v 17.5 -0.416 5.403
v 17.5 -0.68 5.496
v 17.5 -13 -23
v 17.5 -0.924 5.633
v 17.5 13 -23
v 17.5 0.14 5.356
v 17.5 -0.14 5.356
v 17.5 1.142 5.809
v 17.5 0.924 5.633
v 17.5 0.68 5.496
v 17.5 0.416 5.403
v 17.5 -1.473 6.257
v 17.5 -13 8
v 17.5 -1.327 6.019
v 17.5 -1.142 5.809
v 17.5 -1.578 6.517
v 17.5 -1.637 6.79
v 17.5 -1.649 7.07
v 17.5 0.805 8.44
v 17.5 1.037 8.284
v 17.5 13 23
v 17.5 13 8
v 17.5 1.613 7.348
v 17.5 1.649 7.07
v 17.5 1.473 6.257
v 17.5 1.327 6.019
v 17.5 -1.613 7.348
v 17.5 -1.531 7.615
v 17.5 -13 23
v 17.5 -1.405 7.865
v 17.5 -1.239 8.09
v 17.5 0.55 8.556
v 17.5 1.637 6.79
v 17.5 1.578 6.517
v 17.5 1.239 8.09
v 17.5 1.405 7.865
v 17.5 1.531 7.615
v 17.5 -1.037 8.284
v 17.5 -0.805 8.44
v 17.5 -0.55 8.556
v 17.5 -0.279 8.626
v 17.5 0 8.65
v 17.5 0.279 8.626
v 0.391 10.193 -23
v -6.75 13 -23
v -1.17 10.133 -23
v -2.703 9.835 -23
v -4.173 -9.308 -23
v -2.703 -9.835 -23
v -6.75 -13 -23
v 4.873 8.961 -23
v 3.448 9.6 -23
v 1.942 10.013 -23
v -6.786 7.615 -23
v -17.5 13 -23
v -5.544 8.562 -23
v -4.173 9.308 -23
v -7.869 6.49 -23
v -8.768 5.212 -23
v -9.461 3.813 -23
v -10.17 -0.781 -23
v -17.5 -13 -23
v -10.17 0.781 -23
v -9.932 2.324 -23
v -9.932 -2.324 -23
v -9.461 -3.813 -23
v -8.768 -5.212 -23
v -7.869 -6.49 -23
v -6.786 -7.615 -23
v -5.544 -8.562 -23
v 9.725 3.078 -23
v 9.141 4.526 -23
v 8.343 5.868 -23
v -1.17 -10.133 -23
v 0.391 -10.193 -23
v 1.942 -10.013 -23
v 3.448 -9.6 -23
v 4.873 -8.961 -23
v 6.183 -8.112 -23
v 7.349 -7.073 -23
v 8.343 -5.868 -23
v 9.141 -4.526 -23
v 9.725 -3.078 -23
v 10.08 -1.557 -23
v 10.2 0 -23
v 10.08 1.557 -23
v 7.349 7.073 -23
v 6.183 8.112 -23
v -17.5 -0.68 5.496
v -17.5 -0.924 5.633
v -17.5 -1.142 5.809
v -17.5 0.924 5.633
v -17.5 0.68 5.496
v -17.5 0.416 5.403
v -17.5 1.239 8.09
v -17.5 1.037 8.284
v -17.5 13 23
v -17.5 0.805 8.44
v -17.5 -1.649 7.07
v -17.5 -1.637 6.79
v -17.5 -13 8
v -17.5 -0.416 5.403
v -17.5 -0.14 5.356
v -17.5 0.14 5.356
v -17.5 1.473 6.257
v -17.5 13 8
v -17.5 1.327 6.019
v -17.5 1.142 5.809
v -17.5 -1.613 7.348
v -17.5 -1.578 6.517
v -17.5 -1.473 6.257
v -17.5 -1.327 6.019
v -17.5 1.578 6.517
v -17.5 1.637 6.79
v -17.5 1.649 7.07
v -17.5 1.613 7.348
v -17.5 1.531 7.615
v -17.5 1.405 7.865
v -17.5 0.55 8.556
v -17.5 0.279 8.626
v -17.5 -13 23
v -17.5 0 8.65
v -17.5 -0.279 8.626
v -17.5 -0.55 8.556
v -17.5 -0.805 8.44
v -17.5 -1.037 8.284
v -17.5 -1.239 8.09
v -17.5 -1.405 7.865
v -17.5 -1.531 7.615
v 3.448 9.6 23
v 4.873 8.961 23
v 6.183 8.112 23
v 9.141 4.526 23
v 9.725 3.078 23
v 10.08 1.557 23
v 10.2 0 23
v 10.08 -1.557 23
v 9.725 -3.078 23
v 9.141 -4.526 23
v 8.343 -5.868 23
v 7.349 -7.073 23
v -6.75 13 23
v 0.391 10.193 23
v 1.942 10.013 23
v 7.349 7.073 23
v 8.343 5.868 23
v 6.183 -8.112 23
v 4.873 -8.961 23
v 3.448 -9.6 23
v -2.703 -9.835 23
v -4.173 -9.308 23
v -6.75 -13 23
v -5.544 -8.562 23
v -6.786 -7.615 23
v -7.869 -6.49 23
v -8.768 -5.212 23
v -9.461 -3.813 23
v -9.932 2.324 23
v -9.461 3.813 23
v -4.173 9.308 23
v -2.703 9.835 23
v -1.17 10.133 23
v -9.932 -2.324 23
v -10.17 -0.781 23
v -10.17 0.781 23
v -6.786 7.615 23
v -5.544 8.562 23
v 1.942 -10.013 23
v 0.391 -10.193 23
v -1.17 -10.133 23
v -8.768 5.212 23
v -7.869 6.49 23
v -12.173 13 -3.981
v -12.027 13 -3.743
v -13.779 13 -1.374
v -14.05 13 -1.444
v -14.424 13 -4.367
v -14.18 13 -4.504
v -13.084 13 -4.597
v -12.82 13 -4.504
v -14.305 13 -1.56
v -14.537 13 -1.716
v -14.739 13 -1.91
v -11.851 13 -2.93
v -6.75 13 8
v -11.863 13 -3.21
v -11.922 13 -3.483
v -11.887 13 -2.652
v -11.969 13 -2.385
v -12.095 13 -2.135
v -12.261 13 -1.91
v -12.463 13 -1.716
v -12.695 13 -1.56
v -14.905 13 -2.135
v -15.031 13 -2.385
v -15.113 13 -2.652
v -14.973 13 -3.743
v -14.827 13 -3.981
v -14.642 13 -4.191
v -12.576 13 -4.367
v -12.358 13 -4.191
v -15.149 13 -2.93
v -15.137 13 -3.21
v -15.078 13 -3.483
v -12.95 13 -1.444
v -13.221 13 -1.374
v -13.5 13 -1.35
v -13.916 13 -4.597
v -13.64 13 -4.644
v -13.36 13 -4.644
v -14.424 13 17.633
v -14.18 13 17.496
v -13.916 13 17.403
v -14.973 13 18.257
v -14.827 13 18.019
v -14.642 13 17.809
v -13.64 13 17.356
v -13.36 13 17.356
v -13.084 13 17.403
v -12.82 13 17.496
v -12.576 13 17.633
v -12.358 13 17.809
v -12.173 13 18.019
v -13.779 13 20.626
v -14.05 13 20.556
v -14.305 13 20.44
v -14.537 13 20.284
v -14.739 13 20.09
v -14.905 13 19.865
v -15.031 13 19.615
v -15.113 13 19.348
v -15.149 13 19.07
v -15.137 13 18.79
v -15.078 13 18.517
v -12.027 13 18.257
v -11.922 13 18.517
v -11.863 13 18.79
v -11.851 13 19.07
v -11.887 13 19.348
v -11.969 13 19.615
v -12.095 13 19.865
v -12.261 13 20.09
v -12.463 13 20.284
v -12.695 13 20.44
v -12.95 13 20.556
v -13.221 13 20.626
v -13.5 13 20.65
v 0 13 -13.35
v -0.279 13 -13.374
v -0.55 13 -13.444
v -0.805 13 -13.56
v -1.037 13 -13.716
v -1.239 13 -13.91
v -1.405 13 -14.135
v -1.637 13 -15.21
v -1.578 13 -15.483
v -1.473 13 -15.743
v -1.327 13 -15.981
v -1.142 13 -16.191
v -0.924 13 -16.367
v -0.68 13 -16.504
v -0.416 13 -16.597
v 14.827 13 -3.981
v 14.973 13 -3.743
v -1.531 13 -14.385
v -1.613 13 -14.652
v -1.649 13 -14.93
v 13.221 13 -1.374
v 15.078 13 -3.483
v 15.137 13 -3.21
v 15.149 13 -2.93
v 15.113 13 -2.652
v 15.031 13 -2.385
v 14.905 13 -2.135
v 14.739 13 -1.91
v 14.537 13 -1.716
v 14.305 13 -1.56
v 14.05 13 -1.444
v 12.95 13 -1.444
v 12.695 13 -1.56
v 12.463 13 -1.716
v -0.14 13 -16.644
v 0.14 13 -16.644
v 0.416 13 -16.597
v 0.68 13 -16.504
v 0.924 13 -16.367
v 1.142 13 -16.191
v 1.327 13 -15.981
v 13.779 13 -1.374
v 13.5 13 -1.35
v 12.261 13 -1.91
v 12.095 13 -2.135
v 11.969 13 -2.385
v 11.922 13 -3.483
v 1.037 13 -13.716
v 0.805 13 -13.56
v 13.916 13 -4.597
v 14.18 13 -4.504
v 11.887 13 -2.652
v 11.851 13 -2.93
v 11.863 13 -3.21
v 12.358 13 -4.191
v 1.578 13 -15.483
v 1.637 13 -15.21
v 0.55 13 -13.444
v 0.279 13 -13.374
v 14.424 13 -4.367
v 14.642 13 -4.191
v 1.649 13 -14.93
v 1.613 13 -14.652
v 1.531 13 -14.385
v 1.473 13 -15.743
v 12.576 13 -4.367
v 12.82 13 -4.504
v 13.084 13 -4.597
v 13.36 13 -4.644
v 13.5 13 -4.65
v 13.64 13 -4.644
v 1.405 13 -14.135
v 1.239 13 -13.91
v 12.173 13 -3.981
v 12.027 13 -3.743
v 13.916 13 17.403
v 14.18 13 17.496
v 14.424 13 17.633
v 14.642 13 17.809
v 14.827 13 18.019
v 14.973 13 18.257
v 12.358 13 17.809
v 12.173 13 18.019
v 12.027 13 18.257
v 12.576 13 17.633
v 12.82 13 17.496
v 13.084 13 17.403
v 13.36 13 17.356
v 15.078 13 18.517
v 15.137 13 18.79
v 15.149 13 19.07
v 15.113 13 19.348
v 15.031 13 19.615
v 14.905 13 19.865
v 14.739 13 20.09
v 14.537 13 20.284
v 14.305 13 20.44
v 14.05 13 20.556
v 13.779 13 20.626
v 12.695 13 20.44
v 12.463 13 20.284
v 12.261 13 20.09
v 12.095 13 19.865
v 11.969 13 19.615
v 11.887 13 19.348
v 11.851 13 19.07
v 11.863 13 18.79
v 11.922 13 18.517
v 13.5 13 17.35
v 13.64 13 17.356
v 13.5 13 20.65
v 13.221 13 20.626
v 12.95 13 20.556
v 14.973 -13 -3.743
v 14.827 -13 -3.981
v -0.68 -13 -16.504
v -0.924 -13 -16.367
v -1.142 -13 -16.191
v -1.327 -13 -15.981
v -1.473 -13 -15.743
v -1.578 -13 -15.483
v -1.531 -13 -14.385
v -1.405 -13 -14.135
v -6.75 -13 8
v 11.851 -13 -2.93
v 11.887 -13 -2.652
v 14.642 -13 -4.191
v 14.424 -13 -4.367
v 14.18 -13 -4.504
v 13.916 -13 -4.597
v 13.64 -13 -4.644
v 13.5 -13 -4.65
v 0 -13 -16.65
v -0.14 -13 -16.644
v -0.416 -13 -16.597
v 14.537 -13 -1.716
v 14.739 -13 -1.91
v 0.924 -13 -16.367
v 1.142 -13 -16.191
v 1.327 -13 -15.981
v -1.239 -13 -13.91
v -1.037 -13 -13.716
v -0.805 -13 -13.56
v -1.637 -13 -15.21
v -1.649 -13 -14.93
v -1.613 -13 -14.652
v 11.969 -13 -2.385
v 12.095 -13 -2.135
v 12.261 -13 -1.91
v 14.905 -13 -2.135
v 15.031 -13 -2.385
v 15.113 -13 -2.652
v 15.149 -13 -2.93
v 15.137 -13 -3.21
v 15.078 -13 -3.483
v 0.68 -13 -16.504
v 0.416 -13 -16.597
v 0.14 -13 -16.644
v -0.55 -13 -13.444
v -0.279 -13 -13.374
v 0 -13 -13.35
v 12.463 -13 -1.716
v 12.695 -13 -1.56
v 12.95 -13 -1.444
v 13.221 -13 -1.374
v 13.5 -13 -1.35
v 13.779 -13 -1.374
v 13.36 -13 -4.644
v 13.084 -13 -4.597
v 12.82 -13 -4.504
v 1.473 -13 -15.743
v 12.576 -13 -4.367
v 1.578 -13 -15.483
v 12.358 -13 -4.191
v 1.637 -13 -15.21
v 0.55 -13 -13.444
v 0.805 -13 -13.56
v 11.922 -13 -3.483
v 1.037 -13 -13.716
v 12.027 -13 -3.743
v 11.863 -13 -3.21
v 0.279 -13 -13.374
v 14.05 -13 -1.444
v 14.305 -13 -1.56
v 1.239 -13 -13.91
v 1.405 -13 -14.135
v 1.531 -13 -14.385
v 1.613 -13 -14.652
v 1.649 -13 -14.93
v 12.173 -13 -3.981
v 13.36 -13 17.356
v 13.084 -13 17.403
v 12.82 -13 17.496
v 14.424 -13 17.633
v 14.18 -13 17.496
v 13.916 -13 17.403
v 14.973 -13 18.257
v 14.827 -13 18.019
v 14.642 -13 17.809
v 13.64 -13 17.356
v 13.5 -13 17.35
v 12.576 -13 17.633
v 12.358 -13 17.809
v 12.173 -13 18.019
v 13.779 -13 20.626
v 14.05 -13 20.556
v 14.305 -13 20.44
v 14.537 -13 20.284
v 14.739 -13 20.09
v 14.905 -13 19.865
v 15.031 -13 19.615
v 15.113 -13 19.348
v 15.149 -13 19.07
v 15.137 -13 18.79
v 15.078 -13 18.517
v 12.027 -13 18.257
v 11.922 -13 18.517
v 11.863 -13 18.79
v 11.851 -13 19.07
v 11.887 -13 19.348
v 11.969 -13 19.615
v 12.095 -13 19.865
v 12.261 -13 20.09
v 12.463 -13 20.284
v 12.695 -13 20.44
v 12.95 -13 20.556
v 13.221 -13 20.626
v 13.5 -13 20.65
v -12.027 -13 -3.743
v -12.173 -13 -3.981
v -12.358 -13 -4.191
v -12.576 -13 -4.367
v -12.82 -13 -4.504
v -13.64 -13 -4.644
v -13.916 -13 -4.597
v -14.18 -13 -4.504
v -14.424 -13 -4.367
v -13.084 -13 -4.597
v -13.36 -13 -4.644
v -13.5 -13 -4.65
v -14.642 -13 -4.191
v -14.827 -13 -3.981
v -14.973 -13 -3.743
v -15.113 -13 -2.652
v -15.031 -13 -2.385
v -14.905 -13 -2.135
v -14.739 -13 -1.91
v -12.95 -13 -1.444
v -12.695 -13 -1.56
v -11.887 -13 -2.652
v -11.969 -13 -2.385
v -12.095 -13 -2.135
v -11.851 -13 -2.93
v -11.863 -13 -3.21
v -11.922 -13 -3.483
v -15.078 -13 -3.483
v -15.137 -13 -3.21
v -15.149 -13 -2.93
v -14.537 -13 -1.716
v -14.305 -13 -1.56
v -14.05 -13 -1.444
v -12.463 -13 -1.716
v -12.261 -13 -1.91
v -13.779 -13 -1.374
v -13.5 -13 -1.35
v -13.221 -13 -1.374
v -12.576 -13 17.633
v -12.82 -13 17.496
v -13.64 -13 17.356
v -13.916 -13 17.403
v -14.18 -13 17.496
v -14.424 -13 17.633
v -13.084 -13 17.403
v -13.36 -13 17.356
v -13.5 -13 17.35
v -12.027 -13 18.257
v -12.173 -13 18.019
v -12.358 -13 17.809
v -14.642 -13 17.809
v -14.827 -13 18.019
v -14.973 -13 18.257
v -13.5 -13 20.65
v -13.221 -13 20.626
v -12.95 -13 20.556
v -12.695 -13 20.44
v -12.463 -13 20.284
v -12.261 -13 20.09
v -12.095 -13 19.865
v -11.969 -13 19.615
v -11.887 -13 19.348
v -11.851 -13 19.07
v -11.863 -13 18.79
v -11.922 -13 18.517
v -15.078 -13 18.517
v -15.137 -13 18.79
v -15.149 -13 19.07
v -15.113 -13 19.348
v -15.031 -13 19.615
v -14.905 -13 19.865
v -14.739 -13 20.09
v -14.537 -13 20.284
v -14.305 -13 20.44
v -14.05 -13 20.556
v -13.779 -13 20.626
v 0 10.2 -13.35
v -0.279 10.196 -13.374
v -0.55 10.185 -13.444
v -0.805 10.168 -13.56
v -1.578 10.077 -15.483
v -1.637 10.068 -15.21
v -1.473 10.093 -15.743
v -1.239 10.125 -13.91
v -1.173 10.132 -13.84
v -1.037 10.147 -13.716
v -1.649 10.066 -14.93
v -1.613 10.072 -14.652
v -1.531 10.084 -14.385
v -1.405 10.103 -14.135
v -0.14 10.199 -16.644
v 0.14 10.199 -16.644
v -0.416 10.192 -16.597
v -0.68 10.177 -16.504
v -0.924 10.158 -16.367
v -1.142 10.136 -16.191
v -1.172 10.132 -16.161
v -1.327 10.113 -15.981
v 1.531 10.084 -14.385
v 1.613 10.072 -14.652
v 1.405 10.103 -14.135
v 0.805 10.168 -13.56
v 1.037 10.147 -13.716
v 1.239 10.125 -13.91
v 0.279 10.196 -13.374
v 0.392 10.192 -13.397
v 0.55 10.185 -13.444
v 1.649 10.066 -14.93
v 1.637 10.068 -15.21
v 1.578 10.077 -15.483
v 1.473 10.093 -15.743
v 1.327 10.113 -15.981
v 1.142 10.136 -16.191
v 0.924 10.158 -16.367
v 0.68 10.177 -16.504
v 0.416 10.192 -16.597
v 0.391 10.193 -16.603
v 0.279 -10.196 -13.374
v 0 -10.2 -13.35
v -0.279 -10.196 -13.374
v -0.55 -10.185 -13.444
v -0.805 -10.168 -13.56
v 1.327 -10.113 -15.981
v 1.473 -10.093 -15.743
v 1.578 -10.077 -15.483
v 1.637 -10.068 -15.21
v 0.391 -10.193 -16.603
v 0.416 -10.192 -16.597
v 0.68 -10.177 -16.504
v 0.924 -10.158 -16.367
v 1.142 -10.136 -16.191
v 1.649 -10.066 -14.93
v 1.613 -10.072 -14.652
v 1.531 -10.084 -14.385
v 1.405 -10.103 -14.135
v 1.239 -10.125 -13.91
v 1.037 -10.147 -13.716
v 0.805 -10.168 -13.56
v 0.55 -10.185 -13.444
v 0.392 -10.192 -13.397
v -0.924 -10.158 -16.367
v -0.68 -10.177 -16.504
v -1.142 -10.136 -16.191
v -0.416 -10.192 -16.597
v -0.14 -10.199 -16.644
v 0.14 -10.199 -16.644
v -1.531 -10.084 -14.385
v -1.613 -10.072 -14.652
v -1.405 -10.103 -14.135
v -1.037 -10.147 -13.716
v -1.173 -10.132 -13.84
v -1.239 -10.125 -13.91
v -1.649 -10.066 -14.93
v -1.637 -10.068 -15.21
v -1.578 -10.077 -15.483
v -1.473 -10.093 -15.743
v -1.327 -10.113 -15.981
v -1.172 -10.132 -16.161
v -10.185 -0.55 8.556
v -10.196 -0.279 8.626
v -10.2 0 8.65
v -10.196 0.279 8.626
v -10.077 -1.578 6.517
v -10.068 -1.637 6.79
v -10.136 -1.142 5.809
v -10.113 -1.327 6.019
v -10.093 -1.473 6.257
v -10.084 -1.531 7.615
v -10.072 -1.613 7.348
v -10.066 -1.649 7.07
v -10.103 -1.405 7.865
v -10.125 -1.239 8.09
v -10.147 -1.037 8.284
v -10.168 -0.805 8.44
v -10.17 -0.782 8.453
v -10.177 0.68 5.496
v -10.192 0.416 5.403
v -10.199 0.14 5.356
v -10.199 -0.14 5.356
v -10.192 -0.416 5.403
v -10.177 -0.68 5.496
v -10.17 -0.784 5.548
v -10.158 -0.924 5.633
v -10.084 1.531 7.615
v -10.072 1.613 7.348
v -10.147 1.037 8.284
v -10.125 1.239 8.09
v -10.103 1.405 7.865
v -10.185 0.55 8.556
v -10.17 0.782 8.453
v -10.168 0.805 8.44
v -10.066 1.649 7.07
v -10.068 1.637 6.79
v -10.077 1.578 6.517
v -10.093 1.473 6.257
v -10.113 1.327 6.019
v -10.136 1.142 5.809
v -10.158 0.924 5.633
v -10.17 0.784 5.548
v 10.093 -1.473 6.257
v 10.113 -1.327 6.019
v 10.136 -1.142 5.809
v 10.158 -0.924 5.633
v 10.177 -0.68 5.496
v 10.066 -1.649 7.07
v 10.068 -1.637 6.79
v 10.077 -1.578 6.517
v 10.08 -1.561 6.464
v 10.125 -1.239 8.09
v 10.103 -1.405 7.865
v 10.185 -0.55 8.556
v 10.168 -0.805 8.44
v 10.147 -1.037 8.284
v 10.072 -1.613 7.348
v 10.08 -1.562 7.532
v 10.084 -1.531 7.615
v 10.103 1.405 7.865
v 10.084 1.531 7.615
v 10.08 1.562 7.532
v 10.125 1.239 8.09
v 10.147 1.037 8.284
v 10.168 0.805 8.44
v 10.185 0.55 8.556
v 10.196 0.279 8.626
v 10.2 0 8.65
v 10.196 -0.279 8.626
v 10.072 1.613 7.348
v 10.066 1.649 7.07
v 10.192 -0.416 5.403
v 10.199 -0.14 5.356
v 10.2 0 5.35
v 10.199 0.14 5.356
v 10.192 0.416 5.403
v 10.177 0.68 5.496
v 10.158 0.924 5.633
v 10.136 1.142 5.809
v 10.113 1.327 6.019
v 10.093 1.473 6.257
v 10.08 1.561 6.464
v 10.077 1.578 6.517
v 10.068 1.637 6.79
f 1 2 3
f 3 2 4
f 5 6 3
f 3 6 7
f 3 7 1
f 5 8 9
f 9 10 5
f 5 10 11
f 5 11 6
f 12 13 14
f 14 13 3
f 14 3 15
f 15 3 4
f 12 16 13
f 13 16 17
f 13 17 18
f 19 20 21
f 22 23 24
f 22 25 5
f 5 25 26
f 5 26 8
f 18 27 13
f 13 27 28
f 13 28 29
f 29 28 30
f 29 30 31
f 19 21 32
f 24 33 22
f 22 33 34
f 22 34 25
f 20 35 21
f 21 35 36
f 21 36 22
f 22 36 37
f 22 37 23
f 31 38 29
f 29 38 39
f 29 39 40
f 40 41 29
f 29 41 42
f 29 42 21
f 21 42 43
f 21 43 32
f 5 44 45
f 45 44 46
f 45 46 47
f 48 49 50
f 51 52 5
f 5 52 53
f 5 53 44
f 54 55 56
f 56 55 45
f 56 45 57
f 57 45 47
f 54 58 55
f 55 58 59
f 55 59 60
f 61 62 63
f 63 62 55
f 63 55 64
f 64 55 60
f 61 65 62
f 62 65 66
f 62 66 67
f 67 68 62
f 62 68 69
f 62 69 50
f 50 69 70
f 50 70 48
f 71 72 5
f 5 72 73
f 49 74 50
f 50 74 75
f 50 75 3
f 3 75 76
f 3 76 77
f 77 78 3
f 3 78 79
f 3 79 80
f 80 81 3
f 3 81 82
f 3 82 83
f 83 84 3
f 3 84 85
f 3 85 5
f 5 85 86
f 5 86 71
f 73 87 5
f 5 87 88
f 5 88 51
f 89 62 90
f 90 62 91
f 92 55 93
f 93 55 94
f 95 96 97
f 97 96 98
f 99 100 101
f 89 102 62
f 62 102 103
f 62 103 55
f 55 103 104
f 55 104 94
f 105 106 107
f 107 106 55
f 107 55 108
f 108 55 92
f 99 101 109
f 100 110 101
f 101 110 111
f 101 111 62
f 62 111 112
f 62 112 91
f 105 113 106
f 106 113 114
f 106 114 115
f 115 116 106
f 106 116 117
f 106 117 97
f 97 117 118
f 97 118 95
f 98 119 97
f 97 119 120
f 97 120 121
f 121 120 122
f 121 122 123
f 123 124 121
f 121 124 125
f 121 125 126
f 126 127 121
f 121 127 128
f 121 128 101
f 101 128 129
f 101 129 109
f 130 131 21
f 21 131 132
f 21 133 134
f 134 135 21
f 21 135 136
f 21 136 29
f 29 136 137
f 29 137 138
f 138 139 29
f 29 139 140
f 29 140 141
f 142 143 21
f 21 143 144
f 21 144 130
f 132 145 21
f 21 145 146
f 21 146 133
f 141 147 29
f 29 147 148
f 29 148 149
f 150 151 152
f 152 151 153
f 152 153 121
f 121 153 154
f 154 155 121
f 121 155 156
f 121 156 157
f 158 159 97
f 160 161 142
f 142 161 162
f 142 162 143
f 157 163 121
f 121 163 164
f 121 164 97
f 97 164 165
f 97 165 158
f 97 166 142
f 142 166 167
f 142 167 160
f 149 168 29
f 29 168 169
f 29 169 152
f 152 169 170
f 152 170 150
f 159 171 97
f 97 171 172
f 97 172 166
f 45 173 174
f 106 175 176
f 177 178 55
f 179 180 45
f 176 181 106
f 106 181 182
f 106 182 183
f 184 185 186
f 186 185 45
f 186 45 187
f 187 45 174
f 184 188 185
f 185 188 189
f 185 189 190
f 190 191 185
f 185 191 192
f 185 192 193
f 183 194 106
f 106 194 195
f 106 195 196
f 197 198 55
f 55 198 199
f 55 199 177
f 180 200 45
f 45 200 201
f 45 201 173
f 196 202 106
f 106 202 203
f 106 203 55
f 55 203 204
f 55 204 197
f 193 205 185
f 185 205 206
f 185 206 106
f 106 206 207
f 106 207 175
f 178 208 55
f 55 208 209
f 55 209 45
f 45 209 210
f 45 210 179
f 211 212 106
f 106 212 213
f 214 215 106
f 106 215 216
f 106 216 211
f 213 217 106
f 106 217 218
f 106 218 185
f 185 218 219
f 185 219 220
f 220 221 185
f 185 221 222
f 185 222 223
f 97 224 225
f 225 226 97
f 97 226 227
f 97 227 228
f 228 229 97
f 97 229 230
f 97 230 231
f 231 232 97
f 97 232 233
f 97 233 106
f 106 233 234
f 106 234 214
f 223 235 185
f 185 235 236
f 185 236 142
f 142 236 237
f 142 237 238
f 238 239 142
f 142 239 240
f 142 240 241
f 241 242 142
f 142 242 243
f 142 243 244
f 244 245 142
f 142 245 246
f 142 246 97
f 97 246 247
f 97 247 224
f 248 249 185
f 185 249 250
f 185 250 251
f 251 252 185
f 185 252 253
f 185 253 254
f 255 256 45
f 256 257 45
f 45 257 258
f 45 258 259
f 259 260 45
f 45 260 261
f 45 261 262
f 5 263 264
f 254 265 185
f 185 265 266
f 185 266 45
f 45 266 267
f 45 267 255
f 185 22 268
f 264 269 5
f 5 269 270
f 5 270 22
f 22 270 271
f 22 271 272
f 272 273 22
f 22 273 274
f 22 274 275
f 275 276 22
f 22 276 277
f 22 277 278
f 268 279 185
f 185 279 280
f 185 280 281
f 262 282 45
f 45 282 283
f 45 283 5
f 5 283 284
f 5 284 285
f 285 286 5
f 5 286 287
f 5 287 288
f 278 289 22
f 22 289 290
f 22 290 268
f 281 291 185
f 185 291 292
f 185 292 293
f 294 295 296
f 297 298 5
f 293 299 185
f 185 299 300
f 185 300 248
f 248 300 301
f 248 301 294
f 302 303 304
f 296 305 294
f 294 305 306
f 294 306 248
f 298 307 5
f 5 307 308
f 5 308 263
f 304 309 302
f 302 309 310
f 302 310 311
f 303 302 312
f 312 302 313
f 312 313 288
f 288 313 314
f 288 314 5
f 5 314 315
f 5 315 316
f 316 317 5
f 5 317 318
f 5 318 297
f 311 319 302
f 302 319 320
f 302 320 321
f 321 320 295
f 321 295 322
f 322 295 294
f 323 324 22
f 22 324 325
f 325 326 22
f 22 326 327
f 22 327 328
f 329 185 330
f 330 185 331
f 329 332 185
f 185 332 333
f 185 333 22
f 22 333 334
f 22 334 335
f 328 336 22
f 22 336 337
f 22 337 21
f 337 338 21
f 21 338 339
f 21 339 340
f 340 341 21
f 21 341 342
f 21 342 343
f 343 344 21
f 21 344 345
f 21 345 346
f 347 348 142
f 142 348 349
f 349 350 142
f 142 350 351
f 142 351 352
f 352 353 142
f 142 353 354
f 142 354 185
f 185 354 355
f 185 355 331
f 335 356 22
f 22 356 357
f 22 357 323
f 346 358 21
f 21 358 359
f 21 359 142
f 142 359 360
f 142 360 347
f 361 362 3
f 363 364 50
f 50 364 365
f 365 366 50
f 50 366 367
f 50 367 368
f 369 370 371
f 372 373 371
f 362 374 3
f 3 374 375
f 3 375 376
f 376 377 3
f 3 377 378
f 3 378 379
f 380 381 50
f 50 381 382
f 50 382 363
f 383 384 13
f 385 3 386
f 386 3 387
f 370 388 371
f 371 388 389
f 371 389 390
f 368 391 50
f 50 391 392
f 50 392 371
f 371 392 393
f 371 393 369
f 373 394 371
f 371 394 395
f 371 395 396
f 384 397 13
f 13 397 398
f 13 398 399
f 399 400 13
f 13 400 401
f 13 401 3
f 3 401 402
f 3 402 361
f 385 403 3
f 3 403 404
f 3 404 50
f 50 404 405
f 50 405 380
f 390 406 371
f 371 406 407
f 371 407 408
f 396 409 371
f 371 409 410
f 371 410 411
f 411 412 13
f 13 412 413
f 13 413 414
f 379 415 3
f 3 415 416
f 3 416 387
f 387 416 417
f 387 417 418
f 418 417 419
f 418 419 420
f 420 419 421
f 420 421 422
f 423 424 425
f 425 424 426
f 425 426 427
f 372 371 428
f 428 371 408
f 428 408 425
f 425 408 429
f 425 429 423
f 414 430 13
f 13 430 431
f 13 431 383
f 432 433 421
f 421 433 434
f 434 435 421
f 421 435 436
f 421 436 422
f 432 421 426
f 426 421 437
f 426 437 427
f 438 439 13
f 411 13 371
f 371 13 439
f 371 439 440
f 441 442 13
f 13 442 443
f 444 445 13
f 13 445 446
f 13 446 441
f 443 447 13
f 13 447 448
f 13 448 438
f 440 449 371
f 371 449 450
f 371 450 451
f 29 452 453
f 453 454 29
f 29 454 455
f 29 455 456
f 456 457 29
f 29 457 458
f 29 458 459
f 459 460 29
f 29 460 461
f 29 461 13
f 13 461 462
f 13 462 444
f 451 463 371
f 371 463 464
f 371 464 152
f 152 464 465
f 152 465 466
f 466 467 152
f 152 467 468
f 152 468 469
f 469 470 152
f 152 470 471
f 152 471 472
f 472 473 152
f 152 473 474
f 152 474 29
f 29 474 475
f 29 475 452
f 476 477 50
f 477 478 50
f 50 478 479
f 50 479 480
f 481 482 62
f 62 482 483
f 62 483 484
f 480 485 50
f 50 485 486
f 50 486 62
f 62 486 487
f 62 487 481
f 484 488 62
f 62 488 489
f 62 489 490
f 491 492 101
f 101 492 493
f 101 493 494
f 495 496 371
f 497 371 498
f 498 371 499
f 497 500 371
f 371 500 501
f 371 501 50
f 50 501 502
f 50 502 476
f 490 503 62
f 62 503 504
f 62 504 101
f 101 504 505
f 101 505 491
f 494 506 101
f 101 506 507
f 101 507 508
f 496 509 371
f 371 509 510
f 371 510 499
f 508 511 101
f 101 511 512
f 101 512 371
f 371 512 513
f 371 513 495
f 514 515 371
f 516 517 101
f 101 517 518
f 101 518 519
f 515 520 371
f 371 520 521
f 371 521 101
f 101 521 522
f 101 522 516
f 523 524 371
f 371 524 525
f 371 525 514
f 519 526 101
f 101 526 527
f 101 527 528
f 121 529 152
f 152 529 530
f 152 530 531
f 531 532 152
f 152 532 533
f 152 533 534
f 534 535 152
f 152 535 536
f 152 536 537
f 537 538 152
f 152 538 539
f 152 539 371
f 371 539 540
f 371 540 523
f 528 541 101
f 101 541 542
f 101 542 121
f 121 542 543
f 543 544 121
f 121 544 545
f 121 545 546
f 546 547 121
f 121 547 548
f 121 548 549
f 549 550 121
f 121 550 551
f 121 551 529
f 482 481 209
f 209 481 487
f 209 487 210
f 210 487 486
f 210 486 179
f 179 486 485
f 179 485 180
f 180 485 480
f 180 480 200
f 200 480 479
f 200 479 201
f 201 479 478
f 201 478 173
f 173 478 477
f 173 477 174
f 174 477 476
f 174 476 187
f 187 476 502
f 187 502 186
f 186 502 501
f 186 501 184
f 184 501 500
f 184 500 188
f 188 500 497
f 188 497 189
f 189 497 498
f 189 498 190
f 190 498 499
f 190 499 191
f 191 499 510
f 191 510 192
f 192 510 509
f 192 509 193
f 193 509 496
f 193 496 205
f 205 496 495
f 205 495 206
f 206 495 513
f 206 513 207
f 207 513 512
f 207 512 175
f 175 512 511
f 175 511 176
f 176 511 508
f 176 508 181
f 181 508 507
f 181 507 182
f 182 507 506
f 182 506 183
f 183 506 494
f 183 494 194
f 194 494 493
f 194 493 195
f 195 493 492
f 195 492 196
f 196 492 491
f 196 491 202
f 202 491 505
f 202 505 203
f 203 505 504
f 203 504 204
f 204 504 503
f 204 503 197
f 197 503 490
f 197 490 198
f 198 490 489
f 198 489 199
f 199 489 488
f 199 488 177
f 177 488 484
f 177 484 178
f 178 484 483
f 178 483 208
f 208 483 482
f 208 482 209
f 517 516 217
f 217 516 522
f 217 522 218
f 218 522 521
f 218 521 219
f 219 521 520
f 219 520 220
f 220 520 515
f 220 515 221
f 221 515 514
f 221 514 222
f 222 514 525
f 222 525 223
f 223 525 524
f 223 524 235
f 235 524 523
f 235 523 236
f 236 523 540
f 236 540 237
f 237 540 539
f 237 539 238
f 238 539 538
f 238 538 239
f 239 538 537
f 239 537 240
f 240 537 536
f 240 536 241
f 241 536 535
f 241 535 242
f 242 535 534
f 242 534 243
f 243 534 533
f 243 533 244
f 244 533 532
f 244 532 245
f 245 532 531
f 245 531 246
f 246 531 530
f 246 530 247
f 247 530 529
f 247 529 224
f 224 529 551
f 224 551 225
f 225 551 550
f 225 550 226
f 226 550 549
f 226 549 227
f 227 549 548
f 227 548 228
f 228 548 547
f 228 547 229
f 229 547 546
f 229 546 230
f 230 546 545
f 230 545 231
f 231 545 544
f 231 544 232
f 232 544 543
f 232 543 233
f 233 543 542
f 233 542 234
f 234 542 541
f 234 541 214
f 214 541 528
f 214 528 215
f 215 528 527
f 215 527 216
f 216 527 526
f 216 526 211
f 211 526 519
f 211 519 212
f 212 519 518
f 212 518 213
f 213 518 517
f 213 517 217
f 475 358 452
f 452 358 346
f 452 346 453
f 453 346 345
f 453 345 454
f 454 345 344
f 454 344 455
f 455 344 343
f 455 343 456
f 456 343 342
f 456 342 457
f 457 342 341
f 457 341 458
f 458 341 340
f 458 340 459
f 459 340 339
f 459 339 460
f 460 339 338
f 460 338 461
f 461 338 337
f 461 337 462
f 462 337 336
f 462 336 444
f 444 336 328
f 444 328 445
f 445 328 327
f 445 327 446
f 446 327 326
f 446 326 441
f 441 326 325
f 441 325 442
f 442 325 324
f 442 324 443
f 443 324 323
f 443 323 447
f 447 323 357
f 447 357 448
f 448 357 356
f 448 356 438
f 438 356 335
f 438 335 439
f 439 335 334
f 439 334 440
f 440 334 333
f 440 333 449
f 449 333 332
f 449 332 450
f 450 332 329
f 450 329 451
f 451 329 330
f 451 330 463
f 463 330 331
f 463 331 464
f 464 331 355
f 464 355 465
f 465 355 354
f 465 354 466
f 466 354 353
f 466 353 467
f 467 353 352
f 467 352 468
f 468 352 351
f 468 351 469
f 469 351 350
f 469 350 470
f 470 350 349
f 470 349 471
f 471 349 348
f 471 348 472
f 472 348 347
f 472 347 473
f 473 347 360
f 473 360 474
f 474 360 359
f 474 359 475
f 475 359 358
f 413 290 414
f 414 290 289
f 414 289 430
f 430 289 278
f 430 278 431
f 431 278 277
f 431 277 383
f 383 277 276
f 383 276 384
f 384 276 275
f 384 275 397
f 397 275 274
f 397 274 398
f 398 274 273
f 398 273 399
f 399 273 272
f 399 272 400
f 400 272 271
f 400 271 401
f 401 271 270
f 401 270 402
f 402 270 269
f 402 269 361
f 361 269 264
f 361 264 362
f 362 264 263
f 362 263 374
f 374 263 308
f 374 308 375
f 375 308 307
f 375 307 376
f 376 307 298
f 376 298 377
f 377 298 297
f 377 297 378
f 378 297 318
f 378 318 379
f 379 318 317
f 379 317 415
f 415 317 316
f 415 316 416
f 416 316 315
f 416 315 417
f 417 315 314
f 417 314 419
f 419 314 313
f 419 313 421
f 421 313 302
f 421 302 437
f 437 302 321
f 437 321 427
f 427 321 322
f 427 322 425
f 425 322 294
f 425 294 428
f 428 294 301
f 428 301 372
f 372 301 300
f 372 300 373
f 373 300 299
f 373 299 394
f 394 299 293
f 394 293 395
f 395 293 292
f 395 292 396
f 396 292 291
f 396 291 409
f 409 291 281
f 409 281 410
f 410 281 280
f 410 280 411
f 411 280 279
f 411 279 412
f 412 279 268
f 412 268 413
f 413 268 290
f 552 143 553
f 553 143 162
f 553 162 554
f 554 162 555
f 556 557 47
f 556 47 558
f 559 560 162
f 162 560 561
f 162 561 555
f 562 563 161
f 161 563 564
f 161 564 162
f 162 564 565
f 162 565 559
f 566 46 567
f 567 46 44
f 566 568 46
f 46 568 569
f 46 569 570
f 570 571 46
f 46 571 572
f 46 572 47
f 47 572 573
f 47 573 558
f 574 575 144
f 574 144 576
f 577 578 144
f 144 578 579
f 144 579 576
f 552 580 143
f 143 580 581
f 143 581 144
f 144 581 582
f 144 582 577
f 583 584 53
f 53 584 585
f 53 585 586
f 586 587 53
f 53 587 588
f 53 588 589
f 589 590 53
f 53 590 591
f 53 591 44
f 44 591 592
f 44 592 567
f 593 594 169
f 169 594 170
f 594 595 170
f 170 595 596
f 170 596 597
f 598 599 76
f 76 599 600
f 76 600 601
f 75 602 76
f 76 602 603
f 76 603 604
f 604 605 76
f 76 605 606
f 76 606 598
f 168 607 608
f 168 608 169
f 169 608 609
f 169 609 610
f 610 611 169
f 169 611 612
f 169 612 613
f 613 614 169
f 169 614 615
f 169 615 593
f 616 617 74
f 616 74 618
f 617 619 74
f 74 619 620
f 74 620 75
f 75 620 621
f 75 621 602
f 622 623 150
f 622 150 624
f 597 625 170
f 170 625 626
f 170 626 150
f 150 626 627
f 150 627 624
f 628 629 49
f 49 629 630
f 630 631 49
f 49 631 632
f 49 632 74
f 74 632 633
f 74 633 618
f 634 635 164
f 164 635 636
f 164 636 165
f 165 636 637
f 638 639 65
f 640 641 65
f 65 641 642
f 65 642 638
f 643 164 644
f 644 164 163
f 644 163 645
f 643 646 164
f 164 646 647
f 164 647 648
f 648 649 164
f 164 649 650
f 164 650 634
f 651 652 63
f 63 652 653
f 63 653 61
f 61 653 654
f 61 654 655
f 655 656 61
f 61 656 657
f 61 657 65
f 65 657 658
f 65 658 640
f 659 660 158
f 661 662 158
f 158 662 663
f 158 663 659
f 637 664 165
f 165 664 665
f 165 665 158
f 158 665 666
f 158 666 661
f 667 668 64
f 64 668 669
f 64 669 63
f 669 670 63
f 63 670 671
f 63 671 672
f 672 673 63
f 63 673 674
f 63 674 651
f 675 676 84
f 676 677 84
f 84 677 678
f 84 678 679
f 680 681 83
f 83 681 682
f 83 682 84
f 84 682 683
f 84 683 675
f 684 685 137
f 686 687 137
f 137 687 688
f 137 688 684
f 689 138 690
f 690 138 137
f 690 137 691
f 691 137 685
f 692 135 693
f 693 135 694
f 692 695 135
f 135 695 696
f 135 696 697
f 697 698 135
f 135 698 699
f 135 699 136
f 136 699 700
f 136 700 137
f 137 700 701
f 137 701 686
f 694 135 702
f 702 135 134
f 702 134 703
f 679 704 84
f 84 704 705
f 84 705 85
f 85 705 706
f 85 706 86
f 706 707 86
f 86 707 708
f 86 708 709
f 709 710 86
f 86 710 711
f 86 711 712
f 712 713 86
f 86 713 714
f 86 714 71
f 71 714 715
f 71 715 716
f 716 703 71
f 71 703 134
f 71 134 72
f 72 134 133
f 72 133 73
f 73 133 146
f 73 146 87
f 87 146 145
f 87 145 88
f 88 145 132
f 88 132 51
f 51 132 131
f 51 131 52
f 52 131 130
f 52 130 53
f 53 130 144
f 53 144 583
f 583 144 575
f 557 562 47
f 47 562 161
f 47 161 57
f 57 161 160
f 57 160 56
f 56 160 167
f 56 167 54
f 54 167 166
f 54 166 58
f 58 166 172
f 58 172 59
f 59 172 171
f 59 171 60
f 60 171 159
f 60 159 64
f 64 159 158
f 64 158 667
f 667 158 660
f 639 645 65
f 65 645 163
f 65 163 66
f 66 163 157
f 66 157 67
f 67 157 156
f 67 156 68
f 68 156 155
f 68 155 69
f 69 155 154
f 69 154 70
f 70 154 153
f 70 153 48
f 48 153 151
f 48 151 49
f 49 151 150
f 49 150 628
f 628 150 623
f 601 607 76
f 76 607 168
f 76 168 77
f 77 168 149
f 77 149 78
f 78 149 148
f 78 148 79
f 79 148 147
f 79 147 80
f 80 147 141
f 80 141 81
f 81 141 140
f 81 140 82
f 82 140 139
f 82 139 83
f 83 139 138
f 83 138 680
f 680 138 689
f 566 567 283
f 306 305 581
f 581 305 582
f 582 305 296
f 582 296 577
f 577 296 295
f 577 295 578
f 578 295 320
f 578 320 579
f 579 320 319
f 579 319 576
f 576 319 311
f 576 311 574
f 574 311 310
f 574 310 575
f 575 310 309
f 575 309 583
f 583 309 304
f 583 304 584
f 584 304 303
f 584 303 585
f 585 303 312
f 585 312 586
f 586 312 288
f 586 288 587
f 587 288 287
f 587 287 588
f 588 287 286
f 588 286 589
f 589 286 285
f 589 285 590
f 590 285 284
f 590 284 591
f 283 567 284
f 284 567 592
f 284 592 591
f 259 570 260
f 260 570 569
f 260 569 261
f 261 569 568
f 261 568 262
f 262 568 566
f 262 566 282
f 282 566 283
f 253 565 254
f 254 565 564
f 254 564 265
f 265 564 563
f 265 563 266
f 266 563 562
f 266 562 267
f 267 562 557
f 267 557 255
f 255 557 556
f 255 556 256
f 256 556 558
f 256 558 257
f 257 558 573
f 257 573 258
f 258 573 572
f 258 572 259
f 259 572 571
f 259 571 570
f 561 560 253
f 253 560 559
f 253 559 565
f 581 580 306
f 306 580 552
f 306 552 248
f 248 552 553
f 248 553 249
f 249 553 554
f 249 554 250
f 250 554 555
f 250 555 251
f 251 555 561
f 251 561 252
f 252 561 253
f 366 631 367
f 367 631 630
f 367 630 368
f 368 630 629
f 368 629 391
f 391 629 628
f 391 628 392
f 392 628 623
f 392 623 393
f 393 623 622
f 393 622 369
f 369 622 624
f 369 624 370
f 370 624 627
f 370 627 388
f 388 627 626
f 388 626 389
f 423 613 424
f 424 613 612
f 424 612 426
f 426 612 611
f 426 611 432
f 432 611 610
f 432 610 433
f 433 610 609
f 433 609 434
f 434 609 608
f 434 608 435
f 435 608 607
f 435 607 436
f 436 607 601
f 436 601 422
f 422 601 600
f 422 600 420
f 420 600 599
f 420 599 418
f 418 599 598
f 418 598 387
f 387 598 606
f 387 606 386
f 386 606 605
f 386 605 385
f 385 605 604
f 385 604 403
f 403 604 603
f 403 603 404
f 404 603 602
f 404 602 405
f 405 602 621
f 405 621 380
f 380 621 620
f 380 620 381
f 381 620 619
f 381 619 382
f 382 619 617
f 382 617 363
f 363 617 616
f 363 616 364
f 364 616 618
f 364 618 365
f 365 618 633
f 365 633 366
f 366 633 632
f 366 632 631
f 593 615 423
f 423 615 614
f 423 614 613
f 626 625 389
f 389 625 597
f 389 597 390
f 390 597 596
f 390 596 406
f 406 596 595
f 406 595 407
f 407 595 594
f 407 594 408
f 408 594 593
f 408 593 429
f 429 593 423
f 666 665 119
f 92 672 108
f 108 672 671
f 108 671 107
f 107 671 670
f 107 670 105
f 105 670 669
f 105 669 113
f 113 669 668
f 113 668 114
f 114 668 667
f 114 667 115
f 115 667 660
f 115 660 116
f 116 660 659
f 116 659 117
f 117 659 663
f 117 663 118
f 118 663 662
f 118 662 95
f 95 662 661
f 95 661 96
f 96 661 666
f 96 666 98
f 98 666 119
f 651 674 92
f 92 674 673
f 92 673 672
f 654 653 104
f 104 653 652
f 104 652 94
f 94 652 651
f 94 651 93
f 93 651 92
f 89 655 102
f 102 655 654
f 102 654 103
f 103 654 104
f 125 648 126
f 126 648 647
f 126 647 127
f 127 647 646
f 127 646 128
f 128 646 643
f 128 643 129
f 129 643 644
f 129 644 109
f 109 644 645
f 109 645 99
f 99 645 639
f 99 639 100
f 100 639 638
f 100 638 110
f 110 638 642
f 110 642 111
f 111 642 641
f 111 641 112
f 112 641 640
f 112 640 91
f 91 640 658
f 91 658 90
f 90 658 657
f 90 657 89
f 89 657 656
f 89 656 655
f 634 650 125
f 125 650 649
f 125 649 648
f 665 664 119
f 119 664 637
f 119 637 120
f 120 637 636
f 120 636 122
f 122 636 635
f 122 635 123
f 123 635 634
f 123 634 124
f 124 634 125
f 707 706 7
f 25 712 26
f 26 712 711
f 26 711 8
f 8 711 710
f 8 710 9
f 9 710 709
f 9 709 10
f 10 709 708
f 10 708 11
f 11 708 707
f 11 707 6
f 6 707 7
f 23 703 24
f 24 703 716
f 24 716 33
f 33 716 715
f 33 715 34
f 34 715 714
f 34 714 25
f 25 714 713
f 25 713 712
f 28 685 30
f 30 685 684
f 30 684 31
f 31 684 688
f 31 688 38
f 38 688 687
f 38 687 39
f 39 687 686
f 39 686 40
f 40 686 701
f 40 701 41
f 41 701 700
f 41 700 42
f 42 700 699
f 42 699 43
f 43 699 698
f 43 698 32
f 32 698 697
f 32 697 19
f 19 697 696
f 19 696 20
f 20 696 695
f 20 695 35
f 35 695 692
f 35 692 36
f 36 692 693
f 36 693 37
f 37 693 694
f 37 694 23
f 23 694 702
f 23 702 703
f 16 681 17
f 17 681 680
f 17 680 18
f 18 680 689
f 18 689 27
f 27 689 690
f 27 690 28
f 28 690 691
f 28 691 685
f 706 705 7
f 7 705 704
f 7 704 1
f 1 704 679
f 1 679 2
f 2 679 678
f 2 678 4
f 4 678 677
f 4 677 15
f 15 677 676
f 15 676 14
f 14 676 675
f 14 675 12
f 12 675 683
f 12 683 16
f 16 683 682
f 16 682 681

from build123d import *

# Parameters (mm, degrees)
SKETCH1_W           = 35
SKETCH1_H           = 46
BOSS_EXTRUDE1_DEPTH = 13
SKETCH2_R           = 1.65
CUT_EXTRUDE1_DEPTH  = 26
SKETCH5_R           = 10.2
CUT_EXTRUDE2_DEPTH  = 46
SKETCH8_R           = 1.65
CUT_EXTRUDE3_DEPTH  = 26
SKETCH9_R           = 1.65
CUT_EXTRUDE4_DEPTH  = 35


with BuildPart() as part:
    # Sketch1 → Boss-Extrude1 (new body, symmetric)
    with BuildSketch(Plane(origin=(0, 0, 0), x_dir=(1, 0, 0), z_dir=(0, 1, 0))):
        Rectangle(SKETCH1_W, SKETCH1_H)
    extrude(amount=BOSS_EXTRUDE1_DEPTH, both=True)

    # Sketch2 → Cut-Extrude1 (cut)
    with BuildSketch(Plane(origin=(0, 13, 0), x_dir=(1, 0, 0), z_dir=(0, 1, 0))):
        with Locations((-13.5, 3)):
            Circle(SKETCH2_R)
        with Locations((-13.5, -19)):
            Circle(SKETCH2_R)
        with Locations((13.5, -19)):
            Circle(SKETCH2_R)
        with Locations((13.5, 3)):
            Circle(SKETCH2_R)
    extrude(amount=-CUT_EXTRUDE1_DEPTH, mode=Mode.SUBTRACT)

    # Sketch5 → Cut-Extrude2 (cut)
    with BuildSketch(Plane.XY.offset(23)):
        Circle(SKETCH5_R)
    extrude(amount=-CUT_EXTRUDE2_DEPTH, mode=Mode.SUBTRACT)

    # Sketch8 → Cut-Extrude3 (cut)
    with BuildSketch(Plane(origin=(0, 13, 0), x_dir=(1, 0, 0), z_dir=(0, 1, 0))):
        with Locations((0, 15)):
            Circle(SKETCH8_R)
    extrude(amount=-CUT_EXTRUDE3_DEPTH, mode=Mode.SUBTRACT)

    # Sketch9 → Cut-Extrude4 (cut)
    with BuildSketch(Plane.ZY.offset(17.5)):
        with Locations((7, 0)):
            Circle(SKETCH9_R)
    extrude(amount=-CUT_EXTRUDE4_DEPTH, mode=Mode.SUBTRACT)


solid = part.part
